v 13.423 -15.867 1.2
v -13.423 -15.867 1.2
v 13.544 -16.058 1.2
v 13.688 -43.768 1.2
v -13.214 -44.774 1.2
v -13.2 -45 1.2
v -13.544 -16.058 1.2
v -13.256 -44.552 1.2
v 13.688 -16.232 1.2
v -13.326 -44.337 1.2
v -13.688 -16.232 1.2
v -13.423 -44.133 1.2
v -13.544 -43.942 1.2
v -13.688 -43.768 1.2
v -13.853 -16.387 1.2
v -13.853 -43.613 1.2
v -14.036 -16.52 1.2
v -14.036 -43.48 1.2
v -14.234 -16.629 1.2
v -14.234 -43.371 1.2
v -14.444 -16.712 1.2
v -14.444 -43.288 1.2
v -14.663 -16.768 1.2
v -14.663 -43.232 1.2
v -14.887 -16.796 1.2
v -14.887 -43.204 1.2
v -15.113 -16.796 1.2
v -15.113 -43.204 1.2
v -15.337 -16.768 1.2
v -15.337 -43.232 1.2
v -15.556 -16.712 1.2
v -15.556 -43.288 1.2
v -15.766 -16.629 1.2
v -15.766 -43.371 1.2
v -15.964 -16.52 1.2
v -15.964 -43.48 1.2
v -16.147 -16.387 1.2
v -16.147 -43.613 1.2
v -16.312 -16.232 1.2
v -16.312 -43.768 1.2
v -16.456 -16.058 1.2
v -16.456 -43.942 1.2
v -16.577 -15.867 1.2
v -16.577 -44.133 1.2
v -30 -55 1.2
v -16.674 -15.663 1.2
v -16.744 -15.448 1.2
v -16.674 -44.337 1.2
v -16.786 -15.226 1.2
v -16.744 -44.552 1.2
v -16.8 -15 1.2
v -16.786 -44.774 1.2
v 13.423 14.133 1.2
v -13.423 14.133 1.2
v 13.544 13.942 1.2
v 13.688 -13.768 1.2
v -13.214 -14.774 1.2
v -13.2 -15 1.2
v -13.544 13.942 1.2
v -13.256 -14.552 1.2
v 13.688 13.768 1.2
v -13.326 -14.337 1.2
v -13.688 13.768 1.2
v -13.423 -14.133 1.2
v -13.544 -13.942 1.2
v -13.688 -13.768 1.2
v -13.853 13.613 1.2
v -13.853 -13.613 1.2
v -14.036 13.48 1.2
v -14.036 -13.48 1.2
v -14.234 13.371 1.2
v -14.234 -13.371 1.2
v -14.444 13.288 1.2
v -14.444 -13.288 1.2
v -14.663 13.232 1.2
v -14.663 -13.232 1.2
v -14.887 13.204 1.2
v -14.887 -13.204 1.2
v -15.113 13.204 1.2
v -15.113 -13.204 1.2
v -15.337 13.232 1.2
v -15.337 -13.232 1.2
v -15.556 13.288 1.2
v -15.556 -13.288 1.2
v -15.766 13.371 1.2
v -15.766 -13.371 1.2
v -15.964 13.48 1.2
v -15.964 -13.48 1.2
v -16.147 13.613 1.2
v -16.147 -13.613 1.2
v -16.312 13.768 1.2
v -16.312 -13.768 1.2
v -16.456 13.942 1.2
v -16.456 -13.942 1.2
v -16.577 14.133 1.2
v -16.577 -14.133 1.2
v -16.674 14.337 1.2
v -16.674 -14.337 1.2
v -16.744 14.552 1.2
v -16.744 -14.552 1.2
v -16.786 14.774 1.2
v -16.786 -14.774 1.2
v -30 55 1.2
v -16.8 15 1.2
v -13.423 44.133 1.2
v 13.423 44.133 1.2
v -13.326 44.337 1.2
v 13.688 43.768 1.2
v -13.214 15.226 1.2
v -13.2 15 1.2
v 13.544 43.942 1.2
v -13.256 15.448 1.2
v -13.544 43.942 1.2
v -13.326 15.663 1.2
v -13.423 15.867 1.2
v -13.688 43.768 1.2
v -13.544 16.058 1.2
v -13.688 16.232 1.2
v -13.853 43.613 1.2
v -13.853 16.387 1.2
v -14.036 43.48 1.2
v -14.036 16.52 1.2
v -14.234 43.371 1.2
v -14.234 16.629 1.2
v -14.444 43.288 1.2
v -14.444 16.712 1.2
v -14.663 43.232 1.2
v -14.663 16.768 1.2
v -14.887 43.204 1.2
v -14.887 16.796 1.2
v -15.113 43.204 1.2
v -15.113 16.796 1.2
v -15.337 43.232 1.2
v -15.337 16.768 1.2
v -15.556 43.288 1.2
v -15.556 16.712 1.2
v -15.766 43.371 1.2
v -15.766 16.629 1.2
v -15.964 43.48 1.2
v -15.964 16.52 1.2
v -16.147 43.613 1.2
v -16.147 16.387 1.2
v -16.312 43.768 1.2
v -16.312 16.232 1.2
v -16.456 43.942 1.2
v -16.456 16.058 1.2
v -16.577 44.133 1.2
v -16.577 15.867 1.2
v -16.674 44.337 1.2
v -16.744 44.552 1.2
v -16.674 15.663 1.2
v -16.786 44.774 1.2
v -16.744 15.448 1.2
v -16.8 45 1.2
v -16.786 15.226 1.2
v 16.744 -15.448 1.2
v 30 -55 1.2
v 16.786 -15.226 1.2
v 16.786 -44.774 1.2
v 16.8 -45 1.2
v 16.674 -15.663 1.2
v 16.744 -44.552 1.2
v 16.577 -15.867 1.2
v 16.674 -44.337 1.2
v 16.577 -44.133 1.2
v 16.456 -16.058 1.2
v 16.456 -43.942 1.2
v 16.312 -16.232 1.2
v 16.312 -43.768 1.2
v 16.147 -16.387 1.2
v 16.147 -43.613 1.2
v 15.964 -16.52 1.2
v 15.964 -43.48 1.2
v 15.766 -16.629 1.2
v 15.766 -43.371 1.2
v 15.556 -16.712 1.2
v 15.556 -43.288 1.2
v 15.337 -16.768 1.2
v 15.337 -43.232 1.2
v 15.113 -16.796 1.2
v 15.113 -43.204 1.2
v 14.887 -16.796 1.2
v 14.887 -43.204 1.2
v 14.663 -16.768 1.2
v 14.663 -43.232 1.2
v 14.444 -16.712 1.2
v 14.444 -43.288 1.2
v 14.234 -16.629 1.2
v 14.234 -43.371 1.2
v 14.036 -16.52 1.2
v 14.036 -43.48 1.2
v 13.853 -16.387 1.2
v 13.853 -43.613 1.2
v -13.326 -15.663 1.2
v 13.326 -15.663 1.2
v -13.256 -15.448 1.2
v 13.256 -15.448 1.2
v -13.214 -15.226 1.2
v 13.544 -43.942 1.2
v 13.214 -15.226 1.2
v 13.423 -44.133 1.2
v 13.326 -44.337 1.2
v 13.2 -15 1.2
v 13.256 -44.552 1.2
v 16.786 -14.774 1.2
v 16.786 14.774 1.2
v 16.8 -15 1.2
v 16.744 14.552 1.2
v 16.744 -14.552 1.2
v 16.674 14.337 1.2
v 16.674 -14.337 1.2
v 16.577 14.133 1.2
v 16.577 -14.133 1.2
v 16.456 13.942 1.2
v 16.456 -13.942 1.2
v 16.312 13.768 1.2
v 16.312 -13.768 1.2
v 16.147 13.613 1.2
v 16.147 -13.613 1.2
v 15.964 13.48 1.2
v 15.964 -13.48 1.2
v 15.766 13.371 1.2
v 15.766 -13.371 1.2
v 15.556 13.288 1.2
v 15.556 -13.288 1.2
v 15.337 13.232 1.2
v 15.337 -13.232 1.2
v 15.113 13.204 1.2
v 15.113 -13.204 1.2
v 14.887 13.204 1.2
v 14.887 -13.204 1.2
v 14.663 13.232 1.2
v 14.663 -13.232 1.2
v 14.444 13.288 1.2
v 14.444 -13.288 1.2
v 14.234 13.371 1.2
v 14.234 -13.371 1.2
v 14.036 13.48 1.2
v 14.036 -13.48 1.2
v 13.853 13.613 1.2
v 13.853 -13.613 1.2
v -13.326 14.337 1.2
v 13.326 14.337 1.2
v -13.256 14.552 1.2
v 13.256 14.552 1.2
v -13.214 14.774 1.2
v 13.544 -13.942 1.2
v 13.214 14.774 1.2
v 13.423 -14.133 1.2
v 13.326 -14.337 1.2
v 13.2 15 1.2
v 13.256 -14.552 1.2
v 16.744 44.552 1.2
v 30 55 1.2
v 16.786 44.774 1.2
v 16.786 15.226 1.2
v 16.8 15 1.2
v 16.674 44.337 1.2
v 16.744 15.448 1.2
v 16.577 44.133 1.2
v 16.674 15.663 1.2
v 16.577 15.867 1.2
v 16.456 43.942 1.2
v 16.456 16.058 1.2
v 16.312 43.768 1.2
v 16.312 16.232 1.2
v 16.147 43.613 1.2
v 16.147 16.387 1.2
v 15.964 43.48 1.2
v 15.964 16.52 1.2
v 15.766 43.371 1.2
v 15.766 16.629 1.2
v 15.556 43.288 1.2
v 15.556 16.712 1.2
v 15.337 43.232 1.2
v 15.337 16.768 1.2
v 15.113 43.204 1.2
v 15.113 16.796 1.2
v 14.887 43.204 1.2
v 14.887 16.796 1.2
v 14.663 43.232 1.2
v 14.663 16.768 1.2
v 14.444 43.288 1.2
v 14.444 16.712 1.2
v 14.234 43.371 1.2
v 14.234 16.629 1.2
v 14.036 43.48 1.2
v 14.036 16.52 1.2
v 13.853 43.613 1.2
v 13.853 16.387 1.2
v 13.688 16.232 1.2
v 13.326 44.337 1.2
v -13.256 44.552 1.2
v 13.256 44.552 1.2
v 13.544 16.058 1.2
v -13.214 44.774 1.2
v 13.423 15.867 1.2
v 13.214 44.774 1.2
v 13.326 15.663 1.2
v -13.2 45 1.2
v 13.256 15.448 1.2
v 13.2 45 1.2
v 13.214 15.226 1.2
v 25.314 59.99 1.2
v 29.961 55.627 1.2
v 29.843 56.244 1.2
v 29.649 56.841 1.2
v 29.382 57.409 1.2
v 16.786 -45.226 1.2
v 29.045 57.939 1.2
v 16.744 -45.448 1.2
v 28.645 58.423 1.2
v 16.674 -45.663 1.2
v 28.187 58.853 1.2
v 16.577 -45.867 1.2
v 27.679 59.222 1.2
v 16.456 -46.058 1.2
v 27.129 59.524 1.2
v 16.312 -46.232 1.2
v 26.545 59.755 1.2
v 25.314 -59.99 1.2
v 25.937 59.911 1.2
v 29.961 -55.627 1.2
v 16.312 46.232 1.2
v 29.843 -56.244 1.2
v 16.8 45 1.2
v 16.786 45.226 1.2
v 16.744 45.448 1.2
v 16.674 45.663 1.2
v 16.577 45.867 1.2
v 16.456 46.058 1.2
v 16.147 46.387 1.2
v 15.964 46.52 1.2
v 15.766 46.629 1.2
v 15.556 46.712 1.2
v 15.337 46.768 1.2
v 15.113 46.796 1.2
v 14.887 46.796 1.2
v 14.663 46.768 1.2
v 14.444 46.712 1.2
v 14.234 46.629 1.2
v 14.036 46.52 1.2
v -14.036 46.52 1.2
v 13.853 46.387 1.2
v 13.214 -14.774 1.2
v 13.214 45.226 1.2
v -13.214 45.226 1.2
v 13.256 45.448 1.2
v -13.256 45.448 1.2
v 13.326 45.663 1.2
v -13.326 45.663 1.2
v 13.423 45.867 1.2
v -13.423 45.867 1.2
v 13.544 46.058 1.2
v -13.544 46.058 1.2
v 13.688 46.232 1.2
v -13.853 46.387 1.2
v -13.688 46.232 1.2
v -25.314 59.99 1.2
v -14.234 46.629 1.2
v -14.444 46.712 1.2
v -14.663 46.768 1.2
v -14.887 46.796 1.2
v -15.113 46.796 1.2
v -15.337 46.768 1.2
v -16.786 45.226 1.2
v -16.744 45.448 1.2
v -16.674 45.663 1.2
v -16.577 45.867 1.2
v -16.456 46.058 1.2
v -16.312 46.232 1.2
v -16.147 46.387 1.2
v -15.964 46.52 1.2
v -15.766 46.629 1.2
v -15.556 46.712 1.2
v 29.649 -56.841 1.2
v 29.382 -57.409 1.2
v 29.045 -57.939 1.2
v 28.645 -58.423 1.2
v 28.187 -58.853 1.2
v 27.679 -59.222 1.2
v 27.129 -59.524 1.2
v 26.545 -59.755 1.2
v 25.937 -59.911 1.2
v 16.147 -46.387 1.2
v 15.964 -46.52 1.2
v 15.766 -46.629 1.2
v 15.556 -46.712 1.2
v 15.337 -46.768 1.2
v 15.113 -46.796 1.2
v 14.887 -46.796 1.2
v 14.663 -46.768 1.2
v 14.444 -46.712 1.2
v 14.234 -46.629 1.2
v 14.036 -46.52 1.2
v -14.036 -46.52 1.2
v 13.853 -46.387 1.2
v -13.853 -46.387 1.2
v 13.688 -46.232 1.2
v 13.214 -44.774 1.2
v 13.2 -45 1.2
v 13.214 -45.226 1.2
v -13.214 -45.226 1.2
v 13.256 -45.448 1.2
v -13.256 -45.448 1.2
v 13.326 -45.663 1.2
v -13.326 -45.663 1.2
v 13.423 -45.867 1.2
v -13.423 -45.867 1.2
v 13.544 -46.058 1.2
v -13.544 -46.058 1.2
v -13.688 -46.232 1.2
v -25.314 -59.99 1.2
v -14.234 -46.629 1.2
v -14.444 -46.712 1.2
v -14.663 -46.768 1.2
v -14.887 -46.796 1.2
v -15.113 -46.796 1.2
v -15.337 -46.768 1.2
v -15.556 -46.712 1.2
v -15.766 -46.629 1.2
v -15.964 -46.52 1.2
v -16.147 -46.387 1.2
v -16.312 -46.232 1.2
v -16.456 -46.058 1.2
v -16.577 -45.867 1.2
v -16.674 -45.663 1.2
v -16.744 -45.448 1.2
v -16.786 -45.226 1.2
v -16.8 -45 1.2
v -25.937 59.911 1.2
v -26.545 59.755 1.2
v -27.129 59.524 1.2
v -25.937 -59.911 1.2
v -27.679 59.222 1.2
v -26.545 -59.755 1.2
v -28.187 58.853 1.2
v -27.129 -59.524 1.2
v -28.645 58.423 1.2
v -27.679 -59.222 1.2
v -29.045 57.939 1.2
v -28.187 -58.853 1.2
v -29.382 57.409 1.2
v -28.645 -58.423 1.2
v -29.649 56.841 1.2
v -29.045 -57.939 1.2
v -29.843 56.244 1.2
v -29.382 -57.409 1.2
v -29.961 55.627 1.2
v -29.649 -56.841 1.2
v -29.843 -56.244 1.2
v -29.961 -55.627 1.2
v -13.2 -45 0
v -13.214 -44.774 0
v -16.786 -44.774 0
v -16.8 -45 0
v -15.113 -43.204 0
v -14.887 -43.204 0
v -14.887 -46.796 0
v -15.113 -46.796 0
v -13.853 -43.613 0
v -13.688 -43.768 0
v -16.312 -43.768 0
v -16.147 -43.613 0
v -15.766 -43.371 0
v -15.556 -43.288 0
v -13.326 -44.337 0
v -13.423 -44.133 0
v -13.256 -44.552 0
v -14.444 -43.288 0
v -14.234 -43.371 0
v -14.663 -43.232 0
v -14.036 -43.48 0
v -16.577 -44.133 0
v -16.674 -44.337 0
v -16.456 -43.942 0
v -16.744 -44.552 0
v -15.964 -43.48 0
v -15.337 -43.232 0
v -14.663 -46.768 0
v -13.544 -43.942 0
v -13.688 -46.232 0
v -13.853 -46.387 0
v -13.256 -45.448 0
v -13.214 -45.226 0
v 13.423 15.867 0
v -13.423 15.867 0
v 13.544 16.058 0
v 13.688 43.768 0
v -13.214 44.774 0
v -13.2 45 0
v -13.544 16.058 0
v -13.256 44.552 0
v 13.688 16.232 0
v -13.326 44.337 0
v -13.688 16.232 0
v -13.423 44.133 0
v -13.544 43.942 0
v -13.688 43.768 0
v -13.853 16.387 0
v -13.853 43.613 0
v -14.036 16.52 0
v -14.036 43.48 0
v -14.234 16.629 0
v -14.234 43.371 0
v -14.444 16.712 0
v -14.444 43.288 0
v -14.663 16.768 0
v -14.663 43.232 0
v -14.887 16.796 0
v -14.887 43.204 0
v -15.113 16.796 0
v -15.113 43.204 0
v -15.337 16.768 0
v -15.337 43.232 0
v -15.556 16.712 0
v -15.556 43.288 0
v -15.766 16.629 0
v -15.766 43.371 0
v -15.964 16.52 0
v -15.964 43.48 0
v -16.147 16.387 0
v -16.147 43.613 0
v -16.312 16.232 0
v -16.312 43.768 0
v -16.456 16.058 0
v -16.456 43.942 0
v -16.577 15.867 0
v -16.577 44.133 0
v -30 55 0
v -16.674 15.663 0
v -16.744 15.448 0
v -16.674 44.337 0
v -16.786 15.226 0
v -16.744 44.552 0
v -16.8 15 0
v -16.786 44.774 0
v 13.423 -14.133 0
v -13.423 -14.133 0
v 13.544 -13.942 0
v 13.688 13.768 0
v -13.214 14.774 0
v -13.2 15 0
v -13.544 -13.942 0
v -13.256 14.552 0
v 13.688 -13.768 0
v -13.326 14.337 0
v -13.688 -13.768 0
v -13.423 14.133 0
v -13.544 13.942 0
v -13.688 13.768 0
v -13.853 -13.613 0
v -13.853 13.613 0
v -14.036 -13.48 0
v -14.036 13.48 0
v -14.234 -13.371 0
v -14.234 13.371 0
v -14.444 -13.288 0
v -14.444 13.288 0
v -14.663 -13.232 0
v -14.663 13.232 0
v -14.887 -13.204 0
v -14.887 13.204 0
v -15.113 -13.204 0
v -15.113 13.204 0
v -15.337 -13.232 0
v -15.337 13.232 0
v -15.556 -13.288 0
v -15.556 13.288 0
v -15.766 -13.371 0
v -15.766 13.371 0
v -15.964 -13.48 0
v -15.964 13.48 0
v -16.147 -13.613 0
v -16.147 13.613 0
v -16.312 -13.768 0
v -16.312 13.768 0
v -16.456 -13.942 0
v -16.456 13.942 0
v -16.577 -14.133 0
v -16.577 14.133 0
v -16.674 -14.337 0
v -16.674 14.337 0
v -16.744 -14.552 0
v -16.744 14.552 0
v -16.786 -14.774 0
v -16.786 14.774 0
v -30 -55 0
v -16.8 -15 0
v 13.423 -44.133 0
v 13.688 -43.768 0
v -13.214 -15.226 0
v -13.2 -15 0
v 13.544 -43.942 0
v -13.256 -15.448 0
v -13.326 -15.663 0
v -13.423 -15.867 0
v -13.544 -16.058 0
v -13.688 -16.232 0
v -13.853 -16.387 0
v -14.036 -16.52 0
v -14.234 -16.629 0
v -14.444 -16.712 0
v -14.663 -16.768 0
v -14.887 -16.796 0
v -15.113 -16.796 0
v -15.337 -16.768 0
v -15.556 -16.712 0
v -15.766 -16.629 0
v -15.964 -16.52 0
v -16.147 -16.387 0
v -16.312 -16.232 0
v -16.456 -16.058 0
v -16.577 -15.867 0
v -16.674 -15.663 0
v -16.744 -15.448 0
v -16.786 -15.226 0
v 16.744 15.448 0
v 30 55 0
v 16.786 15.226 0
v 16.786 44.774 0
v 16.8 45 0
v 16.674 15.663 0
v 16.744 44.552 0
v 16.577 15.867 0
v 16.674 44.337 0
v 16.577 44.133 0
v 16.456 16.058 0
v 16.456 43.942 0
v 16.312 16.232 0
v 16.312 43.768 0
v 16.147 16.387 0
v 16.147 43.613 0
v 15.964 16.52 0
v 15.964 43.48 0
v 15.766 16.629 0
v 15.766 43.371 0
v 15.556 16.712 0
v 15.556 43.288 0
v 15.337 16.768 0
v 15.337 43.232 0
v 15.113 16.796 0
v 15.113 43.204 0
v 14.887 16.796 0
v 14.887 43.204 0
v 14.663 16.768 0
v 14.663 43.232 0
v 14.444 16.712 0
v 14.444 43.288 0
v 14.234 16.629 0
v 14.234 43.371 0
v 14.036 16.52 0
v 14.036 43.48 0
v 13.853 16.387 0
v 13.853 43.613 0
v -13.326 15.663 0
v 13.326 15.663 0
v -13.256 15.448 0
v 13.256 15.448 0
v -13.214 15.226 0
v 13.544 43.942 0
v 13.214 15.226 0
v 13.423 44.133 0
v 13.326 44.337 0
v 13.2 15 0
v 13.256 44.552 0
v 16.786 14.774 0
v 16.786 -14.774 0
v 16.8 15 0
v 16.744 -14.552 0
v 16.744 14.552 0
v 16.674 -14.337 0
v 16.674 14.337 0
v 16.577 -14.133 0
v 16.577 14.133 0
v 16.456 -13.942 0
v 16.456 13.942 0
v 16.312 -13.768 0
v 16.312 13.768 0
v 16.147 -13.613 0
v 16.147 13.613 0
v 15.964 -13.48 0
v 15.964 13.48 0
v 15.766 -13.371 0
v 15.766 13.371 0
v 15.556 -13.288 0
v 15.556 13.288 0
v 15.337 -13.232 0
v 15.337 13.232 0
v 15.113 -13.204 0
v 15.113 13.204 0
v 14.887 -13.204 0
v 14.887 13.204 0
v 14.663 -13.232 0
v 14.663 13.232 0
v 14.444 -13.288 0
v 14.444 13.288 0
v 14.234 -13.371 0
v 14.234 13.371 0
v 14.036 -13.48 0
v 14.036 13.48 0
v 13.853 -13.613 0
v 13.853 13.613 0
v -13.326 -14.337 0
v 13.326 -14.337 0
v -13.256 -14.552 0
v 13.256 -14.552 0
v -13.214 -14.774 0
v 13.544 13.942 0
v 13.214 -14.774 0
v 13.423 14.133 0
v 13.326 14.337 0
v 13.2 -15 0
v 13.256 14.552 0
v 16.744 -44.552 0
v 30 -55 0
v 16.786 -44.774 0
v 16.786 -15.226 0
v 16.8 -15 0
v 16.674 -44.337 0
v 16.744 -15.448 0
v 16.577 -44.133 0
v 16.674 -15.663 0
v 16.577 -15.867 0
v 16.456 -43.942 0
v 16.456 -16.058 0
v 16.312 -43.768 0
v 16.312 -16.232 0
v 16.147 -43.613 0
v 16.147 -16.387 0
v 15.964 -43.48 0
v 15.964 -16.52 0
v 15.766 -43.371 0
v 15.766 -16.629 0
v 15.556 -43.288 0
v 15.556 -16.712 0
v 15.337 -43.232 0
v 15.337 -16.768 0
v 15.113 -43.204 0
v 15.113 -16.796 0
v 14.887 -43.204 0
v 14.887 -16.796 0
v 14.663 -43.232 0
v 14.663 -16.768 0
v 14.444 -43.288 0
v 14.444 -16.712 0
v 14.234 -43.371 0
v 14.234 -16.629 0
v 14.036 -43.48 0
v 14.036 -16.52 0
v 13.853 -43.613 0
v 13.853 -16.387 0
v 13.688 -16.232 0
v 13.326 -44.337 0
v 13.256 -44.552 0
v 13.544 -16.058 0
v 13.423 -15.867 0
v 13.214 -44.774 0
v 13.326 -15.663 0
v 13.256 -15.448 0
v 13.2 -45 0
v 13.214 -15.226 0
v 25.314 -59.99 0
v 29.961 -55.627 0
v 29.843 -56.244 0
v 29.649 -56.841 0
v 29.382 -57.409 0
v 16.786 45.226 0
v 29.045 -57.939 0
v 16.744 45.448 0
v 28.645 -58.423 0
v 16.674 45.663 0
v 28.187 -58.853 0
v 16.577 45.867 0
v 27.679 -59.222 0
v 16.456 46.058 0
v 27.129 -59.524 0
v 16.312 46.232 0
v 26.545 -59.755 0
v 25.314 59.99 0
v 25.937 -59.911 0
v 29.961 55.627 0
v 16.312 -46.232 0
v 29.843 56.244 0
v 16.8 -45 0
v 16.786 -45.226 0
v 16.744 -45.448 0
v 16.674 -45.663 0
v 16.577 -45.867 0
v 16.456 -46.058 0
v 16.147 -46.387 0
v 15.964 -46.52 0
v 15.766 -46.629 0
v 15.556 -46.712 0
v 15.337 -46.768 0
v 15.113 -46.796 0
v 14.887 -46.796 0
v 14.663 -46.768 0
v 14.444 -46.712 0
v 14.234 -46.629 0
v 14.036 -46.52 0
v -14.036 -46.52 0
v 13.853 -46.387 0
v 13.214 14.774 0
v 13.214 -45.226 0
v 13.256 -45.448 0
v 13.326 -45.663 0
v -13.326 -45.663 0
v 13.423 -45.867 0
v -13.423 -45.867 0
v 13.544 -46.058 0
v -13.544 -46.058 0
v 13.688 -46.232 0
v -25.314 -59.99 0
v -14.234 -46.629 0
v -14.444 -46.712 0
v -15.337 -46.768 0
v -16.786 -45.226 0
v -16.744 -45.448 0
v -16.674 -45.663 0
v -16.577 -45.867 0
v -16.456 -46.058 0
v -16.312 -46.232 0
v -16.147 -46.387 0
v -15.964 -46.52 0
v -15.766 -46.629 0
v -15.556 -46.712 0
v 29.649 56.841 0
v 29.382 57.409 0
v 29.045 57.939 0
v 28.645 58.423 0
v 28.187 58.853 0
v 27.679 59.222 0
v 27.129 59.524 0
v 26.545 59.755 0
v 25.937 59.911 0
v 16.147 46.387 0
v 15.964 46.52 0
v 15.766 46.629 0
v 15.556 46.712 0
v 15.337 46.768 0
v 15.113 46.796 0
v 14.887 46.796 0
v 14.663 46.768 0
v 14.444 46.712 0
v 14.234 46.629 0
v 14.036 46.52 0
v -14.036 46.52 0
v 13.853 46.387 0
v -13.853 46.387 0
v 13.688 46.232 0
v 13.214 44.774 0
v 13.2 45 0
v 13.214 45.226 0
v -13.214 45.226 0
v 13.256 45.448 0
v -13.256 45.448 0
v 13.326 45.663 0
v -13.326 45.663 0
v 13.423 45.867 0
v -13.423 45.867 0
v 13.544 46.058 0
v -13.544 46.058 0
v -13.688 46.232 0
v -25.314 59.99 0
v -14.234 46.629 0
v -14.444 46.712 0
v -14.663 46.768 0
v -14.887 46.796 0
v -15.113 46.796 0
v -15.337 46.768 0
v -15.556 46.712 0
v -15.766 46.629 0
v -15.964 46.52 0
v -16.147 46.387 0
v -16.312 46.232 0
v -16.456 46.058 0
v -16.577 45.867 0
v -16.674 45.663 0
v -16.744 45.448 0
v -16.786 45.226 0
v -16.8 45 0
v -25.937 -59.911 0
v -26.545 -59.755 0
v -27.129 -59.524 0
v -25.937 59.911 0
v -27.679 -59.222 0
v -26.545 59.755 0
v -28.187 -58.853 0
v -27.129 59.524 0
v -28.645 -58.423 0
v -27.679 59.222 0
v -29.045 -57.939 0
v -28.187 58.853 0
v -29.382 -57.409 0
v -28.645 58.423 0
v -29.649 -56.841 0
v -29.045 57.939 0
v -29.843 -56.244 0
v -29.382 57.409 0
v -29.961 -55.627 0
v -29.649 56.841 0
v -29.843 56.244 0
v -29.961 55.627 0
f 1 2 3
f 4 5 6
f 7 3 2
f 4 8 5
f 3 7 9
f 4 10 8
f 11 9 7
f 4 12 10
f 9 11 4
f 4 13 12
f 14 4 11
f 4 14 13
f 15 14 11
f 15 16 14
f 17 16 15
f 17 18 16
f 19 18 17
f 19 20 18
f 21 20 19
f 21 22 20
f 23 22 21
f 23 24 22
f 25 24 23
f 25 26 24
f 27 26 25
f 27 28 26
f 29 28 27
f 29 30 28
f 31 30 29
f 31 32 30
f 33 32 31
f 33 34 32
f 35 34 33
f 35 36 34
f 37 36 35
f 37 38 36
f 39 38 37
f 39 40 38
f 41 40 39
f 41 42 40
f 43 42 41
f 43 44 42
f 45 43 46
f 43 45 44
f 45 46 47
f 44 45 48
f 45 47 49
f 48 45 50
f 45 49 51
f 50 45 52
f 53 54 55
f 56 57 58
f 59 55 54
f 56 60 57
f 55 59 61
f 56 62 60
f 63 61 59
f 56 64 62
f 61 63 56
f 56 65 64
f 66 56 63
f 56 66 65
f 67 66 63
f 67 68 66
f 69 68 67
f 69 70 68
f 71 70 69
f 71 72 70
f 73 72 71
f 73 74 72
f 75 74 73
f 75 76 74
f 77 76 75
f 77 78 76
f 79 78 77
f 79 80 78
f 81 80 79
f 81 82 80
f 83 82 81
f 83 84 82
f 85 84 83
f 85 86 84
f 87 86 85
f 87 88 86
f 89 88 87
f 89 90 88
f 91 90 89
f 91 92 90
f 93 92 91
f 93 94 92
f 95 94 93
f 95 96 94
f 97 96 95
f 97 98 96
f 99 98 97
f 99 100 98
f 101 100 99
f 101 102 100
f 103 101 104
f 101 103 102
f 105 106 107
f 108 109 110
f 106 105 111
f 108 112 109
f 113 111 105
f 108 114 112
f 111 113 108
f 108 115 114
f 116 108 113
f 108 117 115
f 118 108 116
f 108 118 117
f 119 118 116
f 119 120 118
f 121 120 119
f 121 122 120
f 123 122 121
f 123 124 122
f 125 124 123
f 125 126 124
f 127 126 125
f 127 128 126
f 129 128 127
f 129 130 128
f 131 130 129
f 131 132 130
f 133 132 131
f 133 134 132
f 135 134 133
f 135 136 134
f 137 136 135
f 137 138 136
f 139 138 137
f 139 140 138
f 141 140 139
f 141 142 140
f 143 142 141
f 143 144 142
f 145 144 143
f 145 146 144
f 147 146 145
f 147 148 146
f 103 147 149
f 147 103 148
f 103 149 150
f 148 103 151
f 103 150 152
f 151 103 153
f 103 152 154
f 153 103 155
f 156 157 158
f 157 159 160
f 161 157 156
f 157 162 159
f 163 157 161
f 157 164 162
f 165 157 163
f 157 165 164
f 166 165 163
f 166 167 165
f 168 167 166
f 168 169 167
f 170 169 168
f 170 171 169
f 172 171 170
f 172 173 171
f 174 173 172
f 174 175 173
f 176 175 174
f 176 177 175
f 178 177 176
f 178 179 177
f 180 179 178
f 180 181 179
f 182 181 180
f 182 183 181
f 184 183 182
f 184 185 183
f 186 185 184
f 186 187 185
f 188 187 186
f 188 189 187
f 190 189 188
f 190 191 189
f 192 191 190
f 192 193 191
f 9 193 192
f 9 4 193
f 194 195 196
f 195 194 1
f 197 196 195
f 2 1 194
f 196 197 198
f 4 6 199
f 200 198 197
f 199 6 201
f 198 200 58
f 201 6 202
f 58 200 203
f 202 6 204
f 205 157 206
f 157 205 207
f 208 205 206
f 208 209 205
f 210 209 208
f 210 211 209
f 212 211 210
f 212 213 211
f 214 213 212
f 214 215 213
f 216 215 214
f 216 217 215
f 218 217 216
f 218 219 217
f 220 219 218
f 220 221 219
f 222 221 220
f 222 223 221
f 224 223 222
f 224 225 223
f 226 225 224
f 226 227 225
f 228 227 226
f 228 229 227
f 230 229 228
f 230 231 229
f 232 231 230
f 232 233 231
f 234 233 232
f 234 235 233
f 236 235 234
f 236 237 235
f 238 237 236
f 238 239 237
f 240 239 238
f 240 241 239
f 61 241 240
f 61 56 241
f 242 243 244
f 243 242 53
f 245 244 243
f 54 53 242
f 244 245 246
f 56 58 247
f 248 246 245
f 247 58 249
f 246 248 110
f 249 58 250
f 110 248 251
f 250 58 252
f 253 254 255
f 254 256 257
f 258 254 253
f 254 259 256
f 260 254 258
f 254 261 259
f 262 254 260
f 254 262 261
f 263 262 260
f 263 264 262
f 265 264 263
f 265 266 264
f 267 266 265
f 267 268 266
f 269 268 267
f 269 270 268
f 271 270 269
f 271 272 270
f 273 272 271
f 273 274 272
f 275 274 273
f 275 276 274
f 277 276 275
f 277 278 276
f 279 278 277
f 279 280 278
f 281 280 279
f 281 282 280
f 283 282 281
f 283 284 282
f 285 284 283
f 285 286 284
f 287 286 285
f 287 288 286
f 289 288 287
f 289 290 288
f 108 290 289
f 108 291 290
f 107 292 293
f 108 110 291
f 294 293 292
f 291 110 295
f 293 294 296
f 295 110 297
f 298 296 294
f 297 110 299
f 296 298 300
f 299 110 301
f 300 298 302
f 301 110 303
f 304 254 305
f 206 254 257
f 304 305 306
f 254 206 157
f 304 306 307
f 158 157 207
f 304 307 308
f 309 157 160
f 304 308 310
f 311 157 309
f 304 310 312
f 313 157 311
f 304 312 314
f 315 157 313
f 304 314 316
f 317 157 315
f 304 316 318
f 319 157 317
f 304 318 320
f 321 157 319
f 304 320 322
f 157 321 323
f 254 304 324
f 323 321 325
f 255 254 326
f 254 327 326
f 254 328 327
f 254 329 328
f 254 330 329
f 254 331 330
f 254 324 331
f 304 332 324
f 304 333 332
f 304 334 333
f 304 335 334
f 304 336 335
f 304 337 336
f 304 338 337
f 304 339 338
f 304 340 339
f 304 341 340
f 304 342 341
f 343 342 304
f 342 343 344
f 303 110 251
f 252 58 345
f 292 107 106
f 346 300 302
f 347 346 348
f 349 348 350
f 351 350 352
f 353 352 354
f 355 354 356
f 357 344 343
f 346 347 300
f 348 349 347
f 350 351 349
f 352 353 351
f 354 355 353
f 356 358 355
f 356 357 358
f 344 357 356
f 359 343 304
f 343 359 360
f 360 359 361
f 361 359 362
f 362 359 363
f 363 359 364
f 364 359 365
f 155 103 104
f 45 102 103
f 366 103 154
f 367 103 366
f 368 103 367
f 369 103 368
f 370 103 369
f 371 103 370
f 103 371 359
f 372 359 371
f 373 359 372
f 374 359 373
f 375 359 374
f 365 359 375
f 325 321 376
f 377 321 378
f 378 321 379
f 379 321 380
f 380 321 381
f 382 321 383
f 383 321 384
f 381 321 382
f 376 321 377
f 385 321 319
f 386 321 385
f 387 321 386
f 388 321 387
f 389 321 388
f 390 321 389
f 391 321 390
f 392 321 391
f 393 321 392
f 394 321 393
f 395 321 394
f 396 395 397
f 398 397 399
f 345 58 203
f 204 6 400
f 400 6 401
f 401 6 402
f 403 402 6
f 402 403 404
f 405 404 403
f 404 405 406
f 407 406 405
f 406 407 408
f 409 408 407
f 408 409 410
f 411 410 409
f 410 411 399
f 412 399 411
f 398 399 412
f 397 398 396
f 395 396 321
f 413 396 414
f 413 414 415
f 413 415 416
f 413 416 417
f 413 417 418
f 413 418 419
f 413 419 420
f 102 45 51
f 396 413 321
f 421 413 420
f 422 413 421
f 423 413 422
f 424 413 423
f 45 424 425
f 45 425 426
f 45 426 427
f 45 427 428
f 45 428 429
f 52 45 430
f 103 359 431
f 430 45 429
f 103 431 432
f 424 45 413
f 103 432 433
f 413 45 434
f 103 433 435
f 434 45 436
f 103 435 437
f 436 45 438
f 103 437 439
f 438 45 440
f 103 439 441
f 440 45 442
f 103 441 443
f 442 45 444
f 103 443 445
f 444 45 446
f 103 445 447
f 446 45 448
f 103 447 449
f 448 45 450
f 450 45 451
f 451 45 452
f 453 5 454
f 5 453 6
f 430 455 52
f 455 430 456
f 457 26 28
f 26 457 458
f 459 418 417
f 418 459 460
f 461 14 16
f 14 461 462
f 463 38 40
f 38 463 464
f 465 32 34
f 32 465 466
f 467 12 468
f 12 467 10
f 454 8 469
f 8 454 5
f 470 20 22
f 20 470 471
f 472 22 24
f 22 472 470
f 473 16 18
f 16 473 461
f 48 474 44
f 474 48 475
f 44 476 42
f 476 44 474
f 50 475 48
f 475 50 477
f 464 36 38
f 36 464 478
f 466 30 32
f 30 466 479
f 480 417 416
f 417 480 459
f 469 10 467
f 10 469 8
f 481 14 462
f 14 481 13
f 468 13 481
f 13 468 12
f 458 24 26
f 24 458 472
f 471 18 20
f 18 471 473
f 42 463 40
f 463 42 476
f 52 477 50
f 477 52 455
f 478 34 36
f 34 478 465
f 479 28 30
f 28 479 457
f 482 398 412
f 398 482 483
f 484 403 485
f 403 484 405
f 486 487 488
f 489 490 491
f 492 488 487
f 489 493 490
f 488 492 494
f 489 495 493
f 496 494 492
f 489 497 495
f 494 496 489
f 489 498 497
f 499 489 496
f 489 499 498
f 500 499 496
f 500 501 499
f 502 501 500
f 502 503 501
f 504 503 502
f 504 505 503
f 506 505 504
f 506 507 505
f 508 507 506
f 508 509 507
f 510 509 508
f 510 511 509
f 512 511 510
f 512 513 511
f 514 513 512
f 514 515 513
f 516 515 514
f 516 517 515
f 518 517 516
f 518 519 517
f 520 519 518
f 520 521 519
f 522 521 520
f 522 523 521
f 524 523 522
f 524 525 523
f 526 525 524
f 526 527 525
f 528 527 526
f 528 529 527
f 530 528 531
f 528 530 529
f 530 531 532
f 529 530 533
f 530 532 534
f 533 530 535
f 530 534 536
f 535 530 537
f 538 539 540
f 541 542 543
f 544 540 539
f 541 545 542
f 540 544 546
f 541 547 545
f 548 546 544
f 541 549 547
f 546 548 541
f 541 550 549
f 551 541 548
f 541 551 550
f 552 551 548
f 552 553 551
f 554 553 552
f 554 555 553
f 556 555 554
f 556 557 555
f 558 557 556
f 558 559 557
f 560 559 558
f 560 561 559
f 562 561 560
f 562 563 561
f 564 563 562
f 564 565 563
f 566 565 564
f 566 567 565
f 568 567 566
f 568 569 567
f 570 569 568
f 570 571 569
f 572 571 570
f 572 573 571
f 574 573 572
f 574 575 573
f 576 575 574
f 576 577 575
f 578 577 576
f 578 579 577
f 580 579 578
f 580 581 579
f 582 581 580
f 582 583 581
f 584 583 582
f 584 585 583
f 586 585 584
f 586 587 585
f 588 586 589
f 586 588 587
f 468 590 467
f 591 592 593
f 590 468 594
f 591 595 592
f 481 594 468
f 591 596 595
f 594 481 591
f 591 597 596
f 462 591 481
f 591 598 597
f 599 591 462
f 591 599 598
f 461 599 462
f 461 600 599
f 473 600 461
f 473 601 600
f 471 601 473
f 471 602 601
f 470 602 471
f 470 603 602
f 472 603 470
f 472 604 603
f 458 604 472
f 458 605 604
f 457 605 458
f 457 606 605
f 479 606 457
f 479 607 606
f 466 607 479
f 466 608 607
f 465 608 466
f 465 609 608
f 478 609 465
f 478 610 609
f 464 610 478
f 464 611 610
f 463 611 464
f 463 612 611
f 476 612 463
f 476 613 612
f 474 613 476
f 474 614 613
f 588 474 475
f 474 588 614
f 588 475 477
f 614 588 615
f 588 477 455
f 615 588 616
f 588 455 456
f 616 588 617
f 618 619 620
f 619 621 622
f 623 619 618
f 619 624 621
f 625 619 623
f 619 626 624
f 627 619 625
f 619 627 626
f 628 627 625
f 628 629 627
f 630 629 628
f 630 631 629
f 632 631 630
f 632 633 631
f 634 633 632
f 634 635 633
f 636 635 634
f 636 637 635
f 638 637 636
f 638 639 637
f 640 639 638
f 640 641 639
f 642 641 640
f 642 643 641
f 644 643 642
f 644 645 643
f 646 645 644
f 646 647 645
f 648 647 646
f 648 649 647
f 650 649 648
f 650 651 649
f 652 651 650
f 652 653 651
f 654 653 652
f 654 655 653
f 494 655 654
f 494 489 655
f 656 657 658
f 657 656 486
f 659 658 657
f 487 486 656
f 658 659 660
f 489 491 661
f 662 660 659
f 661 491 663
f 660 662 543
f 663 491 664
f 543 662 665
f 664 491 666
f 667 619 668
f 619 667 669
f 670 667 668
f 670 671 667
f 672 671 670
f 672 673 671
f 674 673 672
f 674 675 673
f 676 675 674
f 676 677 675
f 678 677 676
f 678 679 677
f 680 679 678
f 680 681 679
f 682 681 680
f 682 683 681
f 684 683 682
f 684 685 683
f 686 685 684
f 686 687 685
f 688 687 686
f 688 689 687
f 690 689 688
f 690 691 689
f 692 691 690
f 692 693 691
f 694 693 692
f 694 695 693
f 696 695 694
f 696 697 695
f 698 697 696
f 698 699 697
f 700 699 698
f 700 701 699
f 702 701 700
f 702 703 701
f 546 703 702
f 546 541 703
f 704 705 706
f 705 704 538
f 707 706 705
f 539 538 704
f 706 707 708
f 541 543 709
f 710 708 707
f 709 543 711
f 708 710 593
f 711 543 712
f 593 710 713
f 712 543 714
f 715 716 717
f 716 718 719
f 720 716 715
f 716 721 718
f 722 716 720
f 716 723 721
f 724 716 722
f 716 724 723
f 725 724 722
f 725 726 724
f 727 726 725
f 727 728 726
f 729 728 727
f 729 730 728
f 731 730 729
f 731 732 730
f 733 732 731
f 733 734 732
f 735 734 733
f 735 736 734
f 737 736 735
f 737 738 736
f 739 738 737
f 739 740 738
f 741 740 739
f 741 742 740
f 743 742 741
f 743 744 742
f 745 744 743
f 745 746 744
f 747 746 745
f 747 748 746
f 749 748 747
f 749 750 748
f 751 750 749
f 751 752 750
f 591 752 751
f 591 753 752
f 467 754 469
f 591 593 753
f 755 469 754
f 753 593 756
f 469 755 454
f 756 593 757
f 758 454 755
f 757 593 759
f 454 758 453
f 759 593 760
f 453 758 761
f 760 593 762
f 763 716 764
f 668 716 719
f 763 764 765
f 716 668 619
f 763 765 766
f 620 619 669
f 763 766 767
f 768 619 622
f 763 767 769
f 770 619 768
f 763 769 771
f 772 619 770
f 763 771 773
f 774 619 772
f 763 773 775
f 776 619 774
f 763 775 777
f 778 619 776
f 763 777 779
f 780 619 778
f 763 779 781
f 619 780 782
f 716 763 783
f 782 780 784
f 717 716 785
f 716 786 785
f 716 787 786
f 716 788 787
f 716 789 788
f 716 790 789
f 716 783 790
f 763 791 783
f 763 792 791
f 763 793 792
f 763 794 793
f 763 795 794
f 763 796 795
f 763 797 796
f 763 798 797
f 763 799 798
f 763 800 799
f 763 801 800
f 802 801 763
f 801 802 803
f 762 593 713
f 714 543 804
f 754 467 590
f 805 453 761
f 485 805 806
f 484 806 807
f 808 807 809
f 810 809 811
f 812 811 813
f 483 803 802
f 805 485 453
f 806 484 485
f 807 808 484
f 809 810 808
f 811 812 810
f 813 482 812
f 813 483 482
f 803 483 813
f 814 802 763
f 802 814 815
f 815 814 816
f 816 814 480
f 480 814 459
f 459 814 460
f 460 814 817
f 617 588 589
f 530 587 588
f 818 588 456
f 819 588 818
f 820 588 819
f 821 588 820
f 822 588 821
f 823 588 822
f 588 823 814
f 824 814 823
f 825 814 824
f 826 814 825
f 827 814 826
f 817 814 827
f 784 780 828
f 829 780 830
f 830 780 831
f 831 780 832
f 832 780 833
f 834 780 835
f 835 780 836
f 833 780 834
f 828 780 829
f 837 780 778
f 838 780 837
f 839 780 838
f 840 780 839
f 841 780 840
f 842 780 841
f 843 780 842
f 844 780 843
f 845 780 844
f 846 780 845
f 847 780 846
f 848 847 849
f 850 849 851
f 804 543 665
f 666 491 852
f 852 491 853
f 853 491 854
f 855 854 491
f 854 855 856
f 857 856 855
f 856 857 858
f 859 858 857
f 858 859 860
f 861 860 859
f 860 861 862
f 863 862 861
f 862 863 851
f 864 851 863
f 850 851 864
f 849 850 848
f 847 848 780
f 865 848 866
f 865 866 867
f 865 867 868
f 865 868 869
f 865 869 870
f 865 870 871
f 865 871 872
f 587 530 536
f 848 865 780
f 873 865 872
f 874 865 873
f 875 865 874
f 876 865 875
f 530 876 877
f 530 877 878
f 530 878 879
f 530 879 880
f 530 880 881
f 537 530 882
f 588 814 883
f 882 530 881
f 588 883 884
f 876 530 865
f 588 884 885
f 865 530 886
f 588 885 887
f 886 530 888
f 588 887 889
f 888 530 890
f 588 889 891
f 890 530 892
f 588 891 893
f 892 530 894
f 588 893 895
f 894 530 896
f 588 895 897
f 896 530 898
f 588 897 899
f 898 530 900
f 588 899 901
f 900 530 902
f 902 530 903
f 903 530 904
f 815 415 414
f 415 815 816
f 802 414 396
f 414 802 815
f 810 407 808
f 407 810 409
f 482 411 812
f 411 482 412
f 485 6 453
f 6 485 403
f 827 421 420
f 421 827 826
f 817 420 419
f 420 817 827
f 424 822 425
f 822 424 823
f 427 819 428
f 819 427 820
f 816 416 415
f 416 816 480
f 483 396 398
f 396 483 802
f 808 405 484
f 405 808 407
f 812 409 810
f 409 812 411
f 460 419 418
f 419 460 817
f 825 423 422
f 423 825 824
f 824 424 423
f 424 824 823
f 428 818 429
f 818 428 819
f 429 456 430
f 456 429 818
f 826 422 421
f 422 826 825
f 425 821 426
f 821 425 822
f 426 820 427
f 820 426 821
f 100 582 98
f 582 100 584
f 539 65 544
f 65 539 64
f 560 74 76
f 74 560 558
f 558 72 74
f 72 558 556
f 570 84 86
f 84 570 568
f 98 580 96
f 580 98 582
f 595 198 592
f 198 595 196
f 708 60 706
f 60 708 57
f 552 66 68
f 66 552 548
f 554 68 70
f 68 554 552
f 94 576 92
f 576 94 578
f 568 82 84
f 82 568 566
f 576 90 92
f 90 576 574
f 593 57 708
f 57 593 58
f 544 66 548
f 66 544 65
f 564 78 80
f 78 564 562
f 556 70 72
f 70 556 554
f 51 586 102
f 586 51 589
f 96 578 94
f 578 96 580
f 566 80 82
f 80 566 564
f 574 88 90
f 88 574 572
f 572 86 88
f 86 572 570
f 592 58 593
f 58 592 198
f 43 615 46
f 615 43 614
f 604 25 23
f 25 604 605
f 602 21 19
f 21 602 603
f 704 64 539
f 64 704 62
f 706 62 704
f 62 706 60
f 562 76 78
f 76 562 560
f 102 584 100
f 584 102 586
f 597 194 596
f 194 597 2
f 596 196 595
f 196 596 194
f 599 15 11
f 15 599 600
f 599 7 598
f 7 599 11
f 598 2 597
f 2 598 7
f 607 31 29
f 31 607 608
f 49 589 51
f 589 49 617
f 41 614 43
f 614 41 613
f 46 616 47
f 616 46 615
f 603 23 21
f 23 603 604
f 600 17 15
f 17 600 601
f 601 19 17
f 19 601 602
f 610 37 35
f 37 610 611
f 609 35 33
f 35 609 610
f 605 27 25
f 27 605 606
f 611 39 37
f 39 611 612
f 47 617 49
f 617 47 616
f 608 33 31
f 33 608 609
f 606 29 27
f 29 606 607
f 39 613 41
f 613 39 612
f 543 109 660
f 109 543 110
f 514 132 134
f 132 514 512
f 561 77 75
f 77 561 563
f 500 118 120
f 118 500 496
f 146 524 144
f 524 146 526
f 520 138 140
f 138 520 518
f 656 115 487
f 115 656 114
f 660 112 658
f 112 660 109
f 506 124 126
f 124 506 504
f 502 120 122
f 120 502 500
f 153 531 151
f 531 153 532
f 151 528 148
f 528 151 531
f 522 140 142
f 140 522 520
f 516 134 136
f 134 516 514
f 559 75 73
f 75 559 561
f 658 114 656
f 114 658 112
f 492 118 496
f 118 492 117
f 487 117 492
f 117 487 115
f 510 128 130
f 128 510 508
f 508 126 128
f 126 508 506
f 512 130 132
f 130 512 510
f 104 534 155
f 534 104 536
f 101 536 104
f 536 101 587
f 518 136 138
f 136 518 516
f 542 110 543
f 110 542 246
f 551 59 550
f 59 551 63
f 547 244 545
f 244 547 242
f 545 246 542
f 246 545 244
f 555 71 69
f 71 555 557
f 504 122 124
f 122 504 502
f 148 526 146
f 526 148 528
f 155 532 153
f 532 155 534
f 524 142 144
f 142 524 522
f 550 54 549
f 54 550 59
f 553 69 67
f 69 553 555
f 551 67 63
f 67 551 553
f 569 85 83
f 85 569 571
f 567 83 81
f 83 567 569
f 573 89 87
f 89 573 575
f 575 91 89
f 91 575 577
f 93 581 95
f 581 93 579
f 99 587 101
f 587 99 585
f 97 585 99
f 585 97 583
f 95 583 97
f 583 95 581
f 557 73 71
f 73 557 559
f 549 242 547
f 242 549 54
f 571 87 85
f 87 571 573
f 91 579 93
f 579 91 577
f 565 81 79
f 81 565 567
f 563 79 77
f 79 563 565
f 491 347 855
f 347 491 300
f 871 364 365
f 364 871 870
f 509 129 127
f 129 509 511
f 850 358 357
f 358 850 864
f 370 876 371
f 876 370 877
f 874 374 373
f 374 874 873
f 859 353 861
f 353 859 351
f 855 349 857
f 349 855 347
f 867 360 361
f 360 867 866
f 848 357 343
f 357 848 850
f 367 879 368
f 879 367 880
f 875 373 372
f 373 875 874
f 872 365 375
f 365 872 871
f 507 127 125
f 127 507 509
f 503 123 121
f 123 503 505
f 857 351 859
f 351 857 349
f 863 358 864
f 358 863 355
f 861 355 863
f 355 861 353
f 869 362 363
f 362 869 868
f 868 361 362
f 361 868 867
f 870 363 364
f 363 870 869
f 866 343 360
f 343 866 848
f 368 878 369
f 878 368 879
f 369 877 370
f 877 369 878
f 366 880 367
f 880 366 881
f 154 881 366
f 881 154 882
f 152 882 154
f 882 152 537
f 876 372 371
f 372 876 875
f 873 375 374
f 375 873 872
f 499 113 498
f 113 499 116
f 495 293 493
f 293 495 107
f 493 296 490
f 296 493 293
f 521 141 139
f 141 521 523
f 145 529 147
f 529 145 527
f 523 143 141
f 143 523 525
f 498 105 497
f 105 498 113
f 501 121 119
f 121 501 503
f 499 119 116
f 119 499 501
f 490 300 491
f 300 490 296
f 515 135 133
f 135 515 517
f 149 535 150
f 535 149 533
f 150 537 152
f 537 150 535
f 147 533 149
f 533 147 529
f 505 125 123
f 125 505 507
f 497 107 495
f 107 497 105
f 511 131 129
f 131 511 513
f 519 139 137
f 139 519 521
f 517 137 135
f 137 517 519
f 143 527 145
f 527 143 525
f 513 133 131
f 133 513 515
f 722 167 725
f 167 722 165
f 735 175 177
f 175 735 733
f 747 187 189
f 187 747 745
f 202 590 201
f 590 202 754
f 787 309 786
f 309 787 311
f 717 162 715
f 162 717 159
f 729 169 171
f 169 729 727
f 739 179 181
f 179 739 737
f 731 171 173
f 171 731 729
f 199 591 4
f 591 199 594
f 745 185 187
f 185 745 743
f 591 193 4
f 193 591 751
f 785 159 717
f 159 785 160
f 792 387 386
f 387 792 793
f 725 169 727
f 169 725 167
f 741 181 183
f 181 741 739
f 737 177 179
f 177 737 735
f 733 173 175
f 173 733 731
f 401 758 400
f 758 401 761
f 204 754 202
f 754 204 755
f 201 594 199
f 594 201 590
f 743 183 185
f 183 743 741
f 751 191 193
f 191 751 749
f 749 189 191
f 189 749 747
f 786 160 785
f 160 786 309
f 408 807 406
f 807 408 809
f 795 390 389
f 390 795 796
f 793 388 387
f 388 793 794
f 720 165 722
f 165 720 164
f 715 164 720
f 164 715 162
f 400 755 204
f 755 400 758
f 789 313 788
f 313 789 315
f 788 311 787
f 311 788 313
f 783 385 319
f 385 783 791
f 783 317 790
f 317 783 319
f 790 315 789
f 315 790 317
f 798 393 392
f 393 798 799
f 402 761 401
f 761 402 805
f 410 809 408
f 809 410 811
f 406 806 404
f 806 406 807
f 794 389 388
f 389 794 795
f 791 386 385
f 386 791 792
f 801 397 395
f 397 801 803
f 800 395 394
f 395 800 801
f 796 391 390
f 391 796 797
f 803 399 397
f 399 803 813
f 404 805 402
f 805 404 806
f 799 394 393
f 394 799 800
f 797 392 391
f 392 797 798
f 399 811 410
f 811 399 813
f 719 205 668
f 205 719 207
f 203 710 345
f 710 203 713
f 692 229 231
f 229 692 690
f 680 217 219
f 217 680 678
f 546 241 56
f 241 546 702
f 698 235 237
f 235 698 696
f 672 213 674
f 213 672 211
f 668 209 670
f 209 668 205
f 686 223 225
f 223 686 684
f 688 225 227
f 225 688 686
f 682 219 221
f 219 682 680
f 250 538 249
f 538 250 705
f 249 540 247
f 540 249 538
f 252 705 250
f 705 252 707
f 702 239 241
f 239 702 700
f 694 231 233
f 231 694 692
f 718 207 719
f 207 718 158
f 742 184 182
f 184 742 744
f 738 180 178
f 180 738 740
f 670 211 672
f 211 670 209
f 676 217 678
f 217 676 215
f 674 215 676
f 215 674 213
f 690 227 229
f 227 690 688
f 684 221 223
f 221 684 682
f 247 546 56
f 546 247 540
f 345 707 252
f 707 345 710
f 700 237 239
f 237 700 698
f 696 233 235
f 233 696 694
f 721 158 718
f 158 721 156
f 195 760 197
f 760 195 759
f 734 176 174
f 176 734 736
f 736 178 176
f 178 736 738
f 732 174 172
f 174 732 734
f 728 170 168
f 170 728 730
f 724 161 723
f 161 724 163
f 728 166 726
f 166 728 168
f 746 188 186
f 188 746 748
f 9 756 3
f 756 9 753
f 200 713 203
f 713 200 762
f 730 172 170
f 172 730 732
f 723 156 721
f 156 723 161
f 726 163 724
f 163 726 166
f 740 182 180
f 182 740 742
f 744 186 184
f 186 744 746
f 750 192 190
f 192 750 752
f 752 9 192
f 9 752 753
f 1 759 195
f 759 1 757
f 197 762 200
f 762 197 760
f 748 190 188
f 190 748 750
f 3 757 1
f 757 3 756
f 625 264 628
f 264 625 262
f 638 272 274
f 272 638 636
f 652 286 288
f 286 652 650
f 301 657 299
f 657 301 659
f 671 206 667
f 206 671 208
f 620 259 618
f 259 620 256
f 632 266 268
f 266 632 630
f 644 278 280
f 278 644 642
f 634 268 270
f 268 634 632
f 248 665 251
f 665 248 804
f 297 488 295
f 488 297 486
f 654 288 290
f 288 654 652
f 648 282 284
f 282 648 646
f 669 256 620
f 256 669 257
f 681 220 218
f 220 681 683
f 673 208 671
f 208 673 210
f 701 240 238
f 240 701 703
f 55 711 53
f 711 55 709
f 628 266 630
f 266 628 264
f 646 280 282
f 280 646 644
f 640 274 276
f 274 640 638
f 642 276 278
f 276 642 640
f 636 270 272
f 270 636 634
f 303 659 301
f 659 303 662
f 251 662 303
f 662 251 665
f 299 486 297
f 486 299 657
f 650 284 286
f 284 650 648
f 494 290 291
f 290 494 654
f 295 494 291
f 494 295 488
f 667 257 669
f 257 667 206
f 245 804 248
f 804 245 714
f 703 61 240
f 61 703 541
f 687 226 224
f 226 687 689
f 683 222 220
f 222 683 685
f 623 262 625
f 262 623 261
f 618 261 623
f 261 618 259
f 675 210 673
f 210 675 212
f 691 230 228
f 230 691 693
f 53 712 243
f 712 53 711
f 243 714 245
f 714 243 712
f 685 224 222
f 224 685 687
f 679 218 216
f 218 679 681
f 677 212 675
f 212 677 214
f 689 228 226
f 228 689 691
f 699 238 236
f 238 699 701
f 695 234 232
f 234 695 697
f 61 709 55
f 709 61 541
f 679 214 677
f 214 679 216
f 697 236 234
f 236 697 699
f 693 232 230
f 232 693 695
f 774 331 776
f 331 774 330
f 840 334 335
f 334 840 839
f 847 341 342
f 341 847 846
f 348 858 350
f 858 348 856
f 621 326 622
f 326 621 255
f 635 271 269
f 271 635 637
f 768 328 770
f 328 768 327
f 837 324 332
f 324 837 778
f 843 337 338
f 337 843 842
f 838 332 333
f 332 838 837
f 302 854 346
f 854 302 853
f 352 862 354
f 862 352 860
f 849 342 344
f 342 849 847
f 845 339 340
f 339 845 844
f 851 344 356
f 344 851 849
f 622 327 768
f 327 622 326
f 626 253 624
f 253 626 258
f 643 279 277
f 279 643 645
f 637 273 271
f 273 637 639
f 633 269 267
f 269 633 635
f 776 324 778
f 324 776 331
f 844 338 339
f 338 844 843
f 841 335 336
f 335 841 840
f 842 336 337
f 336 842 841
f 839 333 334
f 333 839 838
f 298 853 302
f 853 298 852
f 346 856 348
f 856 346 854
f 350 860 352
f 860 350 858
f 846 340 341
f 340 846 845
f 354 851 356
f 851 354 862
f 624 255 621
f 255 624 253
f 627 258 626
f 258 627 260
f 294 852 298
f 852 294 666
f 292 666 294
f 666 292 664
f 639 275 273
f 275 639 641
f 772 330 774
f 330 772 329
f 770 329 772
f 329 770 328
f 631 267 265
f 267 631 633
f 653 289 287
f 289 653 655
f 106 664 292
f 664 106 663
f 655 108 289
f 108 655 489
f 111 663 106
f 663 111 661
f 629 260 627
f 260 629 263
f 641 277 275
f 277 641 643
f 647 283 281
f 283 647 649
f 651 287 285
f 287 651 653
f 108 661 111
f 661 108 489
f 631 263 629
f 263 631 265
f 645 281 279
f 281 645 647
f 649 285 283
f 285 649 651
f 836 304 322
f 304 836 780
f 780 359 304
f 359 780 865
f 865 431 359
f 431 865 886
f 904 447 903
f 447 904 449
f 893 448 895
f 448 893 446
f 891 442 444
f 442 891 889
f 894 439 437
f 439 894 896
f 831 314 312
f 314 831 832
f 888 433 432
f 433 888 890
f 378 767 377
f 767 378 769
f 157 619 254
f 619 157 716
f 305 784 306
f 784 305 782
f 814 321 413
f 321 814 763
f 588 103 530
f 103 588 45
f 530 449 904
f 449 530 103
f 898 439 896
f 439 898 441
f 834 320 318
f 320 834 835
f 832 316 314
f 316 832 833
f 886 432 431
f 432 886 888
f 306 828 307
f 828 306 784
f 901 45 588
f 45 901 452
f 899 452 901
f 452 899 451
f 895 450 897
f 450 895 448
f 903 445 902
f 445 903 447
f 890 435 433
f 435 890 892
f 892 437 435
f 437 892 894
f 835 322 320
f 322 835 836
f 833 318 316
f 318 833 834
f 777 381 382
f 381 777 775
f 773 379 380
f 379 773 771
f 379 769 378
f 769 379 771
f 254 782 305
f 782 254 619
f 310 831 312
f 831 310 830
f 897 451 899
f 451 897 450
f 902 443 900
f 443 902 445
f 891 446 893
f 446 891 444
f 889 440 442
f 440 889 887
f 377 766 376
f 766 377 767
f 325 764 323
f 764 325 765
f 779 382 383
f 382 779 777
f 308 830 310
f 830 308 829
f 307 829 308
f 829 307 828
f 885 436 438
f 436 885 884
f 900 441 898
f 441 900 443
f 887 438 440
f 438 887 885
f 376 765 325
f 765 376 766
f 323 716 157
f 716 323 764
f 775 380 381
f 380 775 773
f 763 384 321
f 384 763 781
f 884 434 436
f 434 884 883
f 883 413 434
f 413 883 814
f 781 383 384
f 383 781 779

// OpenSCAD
$fn = 50;


difference() {
	union() {
		hull() {
			translate(v = [-25.0000000000, 55.0000000000, 0]) {
				cylinder(h = 21, r = 5);
			}
			translate(v = [25.0000000000, 55.0000000000, 0]) {
				cylinder(h = 21, r = 5);
			}
			translate(v = [-25.0000000000, -55.0000000000, 0]) {
				cylinder(h = 21, r = 5);
			}
			translate(v = [25.0000000000, -55.0000000000, 0]) {
				cylinder(h = 21, r = 5);
			}
		}
	}
	union() {
		translate(v = [0, 0, 1.2000000000]) {
			hull() {
				translate(v = [-25.0000000000, 55.0000000000, 0]) {
					cylinder(h = 19.8000000000, r = 3.8000000000);
				}
				translate(v = [25.0000000000, 55.0000000000, 0]) {
					cylinder(h = 19.8000000000, r = 3.8000000000);
				}
				translate(v = [-25.0000000000, -55.0000000000, 0]) {
					cylinder(h = 19.8000000000, r = 3.8000000000);
				}
				translate(v = [25.0000000000, -55.0000000000, 0]) {
					cylinder(h = 19.8000000000, r = 3.8000000000);
				}
			}
		}
		#translate(v = [-15.0000000000, -45.0000000000, 0]) {
			cylinder(h = 1.2000000000, r = 1.8000000000);
		}
		#translate(v = [-15.0000000000, -15.0000000000, 0]) {
			cylinder(h = 1.2000000000, r = 1.8000000000);
		}
		#translate(v = [-15.0000000000, 15.0000000000, 0]) {
			cylinder(h = 1.2000000000, r = 1.8000000000);
		}
		#translate(v = [-15.0000000000, 45.0000000000, 0]) {
			cylinder(h = 1.2000000000, r = 1.8000000000);
		}
		#translate(v = [15.0000000000, -45.0000000000, 0]) {
			cylinder(h = 1.2000000000, r = 1.8000000000);
		}
		#translate(v = [15.0000000000, -15.0000000000, 0]) {
			cylinder(h = 1.2000000000, r = 1.8000000000);
		}
		#translate(v = [15.0000000000, 15.0000000000, 0]) {
			cylinder(h = 1.2000000000, r = 1.8000000000);
		}
		#translate(v = [15.0000000000, 45.0000000000, 0]) {
			cylinder(h = 1.2000000000, r = 1.8000000000);
		}
		translate(v = [-250.0000000000, -250.0000000000, 1.2000000000]) {
			cube(size = [500, 500, 500]);
		}
		translate(v = [-250.0000000000, -250.0000000000, 1.2000000000]) {
			cube(size = [500, 500, 500]);
		}
		translate(v = [-250.0000000000, -250.0000000000, 1.2000000000]) {
			cube(size = [500, 500, 500]);
		}
	}
}
